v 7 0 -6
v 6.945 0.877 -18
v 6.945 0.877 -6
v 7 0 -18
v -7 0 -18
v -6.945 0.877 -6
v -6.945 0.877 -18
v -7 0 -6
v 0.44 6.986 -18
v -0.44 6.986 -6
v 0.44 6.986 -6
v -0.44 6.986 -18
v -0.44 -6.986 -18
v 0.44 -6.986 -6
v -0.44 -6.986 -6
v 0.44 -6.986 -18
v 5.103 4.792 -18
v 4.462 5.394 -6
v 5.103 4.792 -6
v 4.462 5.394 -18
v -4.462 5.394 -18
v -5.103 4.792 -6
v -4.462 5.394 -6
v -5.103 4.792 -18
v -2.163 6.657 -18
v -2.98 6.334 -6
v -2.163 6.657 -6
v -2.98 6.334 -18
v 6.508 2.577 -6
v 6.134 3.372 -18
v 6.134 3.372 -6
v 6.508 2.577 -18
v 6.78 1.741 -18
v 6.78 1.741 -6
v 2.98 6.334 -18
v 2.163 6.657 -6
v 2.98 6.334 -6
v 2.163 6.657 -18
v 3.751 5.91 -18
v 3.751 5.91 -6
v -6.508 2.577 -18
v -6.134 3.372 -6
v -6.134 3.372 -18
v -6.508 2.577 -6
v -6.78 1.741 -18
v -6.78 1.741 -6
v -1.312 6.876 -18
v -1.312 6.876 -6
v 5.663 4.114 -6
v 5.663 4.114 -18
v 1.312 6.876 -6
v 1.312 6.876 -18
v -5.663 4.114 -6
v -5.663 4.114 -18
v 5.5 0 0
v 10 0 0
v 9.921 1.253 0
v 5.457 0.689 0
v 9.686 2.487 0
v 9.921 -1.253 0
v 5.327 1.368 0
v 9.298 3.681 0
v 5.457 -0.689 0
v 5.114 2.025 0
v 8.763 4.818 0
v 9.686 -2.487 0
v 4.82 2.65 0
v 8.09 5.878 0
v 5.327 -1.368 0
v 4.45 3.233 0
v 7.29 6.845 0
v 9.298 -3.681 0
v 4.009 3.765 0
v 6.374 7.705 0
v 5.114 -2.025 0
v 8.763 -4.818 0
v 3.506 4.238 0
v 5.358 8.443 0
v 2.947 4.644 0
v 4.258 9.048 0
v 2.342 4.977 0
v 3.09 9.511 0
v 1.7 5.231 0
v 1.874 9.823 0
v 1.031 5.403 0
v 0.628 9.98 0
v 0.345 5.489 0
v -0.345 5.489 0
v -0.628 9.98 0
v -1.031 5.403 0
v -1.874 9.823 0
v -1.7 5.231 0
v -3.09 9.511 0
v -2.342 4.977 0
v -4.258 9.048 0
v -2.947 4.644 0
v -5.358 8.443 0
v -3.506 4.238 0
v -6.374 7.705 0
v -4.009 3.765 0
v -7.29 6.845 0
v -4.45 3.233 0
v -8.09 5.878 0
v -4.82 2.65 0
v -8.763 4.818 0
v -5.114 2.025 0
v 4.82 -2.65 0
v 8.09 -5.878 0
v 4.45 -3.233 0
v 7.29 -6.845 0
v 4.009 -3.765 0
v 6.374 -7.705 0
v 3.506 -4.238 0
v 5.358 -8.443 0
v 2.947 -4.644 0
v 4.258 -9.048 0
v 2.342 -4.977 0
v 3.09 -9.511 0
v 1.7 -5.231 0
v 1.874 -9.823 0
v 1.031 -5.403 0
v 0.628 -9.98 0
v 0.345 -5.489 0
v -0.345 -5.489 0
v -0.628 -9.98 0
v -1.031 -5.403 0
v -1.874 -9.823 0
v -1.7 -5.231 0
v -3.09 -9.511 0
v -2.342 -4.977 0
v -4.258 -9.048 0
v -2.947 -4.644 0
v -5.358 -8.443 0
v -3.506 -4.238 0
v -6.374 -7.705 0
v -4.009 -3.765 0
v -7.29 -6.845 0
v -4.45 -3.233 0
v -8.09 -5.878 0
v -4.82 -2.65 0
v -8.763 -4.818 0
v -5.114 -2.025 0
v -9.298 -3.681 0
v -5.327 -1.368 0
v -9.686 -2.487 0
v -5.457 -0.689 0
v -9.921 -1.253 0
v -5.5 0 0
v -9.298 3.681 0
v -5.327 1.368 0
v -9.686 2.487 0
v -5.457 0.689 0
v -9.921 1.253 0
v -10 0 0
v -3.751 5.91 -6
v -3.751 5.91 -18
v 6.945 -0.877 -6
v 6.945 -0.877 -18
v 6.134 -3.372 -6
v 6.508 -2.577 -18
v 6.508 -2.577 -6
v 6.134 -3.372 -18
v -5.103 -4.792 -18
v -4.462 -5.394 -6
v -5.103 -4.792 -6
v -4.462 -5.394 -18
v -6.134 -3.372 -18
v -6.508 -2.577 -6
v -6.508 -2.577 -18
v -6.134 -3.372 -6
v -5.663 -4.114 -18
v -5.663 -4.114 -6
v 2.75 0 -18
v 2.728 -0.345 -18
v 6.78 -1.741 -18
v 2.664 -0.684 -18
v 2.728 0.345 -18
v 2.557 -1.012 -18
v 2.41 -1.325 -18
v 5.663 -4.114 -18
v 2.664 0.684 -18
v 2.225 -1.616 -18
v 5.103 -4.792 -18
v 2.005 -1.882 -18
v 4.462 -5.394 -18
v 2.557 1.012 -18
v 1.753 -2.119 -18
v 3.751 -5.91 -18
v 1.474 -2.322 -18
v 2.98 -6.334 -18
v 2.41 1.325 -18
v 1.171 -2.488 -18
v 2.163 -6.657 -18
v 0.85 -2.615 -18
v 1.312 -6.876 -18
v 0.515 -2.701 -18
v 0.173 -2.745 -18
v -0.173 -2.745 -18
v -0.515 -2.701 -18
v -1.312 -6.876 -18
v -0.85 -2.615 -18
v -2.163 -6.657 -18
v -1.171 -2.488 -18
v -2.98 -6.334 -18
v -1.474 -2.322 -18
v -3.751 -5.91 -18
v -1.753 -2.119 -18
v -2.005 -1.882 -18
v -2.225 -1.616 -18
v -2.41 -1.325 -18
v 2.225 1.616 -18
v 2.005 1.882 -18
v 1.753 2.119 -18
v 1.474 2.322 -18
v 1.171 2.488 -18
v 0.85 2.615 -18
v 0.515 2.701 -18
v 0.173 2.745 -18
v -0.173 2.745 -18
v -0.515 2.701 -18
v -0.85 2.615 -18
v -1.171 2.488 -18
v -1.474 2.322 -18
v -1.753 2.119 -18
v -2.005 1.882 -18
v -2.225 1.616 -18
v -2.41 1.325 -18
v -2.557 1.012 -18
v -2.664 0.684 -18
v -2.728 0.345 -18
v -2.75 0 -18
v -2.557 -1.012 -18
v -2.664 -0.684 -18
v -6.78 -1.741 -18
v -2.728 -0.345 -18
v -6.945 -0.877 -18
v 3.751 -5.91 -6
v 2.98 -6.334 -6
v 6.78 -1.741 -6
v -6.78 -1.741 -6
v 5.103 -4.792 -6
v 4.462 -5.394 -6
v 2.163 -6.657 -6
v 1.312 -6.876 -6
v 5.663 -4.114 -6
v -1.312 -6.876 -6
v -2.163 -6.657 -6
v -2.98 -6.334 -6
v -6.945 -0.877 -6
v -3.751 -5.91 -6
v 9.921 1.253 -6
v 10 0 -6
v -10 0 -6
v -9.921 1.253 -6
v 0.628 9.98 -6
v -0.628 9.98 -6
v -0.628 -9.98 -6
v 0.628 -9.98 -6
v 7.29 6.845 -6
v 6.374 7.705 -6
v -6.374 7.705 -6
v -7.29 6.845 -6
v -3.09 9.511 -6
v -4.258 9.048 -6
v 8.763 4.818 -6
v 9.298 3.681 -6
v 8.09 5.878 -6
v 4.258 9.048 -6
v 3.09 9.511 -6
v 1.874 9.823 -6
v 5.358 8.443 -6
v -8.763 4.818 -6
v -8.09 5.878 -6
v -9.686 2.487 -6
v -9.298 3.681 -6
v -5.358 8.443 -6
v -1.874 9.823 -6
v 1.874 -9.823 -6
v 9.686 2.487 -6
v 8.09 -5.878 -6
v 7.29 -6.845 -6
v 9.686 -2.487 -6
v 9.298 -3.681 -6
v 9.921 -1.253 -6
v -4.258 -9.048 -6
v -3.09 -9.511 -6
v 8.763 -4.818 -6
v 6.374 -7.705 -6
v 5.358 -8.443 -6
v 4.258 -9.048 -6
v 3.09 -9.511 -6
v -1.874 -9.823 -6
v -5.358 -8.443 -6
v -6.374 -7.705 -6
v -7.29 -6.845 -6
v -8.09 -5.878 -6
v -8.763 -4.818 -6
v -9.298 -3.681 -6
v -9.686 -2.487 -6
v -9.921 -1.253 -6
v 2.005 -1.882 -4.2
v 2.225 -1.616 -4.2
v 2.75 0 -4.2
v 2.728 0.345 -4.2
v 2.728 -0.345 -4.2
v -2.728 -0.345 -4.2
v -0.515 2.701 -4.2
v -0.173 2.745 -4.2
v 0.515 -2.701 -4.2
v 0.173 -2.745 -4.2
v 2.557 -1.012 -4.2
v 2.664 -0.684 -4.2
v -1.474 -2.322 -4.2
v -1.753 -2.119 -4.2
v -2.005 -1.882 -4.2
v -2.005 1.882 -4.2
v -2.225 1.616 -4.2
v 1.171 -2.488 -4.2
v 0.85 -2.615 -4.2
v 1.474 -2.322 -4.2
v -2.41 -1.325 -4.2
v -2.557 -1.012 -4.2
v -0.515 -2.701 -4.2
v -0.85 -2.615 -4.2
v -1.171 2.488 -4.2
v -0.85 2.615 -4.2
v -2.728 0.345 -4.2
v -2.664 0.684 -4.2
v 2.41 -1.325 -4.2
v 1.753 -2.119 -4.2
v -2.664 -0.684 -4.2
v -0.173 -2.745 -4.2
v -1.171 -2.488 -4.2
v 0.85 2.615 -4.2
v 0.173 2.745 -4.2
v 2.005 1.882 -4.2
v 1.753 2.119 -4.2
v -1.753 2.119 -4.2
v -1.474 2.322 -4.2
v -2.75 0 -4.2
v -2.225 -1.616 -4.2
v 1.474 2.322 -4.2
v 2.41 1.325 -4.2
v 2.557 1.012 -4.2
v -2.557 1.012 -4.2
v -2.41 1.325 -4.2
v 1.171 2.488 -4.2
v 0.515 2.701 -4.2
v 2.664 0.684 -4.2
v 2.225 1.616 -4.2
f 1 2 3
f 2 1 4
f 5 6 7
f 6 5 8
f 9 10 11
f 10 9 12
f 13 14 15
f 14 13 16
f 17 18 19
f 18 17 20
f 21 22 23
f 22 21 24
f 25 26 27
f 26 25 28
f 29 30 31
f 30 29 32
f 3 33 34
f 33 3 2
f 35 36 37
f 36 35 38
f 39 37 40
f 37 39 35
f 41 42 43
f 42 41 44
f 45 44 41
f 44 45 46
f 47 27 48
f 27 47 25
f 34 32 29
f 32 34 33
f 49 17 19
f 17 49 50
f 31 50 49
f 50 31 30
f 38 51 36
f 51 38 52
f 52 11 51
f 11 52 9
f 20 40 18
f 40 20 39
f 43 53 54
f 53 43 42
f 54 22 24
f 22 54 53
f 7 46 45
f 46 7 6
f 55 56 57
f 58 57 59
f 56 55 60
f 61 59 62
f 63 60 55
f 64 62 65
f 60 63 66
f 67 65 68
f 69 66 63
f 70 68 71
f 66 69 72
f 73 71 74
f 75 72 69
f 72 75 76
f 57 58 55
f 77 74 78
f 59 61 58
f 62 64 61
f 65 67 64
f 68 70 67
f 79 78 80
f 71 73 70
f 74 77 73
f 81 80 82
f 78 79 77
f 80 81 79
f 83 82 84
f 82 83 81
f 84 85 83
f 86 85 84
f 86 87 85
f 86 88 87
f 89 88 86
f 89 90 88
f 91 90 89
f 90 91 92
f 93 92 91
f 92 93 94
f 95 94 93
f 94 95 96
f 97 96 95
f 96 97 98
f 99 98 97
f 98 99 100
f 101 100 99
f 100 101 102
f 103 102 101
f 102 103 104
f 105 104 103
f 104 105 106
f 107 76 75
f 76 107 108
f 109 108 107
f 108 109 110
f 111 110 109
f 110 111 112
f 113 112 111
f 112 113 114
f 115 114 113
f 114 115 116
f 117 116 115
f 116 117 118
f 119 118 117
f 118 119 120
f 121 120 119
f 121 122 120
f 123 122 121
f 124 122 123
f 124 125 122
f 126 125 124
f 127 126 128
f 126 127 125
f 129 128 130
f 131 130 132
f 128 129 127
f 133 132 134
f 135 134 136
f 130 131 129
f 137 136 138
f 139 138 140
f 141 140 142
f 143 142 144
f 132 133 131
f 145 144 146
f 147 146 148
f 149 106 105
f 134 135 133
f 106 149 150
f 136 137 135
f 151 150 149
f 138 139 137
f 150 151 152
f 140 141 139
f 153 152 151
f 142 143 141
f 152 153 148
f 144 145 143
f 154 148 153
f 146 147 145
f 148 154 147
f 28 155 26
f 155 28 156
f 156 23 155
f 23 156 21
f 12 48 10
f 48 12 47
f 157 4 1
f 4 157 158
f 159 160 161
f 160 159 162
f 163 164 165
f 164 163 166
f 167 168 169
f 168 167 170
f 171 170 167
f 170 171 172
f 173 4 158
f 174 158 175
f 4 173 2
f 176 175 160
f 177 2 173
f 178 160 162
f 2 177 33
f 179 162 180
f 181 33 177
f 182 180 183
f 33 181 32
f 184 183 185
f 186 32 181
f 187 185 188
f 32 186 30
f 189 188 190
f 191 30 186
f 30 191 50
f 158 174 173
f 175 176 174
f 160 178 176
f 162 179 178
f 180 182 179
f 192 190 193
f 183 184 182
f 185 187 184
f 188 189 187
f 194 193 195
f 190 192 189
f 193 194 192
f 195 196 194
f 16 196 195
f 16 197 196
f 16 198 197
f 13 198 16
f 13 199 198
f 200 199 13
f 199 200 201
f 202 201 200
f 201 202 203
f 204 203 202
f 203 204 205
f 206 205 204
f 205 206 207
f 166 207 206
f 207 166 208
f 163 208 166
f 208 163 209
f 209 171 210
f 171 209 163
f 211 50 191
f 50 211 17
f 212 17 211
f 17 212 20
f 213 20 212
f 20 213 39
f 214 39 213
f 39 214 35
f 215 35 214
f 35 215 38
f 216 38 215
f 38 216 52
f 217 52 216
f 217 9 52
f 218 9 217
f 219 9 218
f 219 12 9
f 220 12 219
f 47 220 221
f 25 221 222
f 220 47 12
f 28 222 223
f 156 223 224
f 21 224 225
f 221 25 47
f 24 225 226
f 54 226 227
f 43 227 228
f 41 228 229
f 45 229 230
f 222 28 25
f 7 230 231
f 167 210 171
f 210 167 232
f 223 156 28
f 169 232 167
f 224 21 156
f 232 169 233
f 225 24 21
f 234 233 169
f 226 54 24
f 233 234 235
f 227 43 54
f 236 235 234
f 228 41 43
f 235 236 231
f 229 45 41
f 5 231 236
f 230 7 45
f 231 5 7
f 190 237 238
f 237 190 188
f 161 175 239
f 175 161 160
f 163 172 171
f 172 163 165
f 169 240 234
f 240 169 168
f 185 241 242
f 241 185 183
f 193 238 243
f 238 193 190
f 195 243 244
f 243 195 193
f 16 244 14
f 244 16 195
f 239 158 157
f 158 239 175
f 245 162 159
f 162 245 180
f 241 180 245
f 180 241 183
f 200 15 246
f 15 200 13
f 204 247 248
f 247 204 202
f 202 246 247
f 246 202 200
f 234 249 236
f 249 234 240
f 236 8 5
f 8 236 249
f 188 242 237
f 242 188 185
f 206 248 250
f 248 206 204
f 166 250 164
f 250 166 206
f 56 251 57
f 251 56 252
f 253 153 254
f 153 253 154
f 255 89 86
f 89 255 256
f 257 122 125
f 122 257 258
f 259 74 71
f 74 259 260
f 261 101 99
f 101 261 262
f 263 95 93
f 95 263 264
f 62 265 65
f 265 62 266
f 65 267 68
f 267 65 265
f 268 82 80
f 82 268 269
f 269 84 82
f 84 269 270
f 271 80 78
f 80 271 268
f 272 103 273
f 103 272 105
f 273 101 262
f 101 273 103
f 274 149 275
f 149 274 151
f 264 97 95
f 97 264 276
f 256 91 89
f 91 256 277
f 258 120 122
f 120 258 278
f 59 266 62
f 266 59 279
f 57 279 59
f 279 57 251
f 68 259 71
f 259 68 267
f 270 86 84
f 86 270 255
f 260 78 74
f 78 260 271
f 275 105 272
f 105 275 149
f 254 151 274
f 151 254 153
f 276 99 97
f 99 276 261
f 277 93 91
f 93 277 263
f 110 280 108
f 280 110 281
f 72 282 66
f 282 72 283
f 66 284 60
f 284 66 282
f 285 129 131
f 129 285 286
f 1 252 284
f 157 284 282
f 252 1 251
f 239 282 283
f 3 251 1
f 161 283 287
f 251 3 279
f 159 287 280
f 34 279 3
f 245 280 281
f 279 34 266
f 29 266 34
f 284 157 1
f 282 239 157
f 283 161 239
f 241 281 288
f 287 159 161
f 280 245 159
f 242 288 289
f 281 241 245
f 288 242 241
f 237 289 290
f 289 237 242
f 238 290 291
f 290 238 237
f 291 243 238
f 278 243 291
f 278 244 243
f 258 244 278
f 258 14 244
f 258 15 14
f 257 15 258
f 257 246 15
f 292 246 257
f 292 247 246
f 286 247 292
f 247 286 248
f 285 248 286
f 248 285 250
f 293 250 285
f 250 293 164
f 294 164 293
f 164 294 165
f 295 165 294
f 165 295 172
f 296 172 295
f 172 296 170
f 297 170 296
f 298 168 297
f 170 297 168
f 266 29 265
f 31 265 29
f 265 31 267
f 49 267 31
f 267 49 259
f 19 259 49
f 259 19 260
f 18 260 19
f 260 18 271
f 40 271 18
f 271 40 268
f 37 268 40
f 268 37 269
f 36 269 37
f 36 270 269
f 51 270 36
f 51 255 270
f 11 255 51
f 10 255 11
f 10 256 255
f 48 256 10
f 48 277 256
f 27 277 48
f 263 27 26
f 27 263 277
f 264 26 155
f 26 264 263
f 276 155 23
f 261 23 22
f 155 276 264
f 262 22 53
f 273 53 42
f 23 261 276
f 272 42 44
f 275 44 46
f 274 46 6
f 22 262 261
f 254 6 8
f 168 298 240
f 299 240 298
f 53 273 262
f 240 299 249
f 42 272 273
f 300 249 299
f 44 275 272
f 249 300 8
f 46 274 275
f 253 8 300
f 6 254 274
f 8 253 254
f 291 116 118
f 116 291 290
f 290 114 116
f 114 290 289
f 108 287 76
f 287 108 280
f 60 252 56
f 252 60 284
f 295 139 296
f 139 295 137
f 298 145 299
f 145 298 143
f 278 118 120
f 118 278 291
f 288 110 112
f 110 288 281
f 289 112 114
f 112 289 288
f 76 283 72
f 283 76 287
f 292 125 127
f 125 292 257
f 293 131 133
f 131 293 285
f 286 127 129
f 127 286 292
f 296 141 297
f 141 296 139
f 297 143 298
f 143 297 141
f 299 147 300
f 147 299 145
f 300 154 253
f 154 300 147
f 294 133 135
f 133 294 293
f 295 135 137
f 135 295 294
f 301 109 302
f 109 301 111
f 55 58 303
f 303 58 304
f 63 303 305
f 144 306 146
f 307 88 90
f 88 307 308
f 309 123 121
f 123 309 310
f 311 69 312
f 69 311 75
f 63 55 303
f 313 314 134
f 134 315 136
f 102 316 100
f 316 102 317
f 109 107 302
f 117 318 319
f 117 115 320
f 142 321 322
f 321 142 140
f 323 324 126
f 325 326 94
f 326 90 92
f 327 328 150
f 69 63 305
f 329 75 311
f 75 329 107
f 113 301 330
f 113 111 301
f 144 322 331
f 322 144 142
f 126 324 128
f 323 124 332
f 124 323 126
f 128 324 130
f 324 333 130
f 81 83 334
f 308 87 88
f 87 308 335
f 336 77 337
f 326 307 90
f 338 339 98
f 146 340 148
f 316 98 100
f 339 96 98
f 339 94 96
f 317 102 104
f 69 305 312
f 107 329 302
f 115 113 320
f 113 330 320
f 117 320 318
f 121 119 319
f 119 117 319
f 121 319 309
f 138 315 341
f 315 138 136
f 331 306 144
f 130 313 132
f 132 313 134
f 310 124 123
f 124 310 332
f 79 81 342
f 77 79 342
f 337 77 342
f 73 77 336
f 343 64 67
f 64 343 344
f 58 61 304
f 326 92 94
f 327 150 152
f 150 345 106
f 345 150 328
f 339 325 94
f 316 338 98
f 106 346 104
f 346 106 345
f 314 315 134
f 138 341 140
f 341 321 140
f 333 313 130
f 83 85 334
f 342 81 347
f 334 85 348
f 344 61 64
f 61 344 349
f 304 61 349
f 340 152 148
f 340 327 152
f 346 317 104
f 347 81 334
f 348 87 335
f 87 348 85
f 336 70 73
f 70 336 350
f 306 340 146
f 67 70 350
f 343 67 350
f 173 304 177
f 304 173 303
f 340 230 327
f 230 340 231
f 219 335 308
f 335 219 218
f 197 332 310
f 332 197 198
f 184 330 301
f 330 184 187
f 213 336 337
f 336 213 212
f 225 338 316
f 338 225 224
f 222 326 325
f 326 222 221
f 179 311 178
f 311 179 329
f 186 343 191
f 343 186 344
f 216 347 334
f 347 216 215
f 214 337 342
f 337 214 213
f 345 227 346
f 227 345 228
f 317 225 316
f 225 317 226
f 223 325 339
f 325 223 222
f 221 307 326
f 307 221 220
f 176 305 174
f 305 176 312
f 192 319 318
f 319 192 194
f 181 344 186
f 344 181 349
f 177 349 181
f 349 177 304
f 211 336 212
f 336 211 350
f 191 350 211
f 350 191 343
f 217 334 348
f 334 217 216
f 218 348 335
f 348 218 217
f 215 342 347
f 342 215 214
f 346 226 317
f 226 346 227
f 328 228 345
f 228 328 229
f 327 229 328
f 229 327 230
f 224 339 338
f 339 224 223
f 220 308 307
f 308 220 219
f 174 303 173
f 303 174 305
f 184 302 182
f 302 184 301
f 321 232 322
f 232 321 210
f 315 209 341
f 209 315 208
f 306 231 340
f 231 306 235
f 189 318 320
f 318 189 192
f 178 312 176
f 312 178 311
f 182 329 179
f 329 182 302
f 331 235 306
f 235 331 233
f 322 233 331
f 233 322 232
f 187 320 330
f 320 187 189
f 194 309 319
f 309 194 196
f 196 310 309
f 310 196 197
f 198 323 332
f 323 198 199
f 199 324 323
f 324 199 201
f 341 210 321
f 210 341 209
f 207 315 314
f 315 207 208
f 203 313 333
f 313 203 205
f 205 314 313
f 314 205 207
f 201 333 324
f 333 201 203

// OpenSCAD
$fn = 50;


difference() {
	union() {
		translate(v = [0, 0, -18.0000000000]) {
			cylinder(h = 18, r = 7.0000000000);
		}
		translate(v = [0, 0, -6.0000000000]) {
			cylinder(h = 6, r = 10.0000000000);
		}
	}
	union() {
		translate(v = [0, 0, 0]) {
			rotate(a = [0, 0, 0]) {
				difference() {
					union() {
						#translate(v = [0, 0, -18.0000000000]) {
							cylinder(h = 18, r = 2.2500000000);
						}
						#translate(v = [0, 0, -4.2000000000]) {
							cylinder(h = 4.2000000000, r1 = 2.7500000000, r2 = 5.5000000000);
						}
						#translate(v = [0, 0, -18.0000000000]) {
							cylinder(h = 18, r = 2.7500000000);
						}
						#translate(v = [0, 0, -18.0000000000]) {
							cylinder(h = 18, r = 2.2500000000);
						}
					}
					union();
				}
			}
		}
	}
}
